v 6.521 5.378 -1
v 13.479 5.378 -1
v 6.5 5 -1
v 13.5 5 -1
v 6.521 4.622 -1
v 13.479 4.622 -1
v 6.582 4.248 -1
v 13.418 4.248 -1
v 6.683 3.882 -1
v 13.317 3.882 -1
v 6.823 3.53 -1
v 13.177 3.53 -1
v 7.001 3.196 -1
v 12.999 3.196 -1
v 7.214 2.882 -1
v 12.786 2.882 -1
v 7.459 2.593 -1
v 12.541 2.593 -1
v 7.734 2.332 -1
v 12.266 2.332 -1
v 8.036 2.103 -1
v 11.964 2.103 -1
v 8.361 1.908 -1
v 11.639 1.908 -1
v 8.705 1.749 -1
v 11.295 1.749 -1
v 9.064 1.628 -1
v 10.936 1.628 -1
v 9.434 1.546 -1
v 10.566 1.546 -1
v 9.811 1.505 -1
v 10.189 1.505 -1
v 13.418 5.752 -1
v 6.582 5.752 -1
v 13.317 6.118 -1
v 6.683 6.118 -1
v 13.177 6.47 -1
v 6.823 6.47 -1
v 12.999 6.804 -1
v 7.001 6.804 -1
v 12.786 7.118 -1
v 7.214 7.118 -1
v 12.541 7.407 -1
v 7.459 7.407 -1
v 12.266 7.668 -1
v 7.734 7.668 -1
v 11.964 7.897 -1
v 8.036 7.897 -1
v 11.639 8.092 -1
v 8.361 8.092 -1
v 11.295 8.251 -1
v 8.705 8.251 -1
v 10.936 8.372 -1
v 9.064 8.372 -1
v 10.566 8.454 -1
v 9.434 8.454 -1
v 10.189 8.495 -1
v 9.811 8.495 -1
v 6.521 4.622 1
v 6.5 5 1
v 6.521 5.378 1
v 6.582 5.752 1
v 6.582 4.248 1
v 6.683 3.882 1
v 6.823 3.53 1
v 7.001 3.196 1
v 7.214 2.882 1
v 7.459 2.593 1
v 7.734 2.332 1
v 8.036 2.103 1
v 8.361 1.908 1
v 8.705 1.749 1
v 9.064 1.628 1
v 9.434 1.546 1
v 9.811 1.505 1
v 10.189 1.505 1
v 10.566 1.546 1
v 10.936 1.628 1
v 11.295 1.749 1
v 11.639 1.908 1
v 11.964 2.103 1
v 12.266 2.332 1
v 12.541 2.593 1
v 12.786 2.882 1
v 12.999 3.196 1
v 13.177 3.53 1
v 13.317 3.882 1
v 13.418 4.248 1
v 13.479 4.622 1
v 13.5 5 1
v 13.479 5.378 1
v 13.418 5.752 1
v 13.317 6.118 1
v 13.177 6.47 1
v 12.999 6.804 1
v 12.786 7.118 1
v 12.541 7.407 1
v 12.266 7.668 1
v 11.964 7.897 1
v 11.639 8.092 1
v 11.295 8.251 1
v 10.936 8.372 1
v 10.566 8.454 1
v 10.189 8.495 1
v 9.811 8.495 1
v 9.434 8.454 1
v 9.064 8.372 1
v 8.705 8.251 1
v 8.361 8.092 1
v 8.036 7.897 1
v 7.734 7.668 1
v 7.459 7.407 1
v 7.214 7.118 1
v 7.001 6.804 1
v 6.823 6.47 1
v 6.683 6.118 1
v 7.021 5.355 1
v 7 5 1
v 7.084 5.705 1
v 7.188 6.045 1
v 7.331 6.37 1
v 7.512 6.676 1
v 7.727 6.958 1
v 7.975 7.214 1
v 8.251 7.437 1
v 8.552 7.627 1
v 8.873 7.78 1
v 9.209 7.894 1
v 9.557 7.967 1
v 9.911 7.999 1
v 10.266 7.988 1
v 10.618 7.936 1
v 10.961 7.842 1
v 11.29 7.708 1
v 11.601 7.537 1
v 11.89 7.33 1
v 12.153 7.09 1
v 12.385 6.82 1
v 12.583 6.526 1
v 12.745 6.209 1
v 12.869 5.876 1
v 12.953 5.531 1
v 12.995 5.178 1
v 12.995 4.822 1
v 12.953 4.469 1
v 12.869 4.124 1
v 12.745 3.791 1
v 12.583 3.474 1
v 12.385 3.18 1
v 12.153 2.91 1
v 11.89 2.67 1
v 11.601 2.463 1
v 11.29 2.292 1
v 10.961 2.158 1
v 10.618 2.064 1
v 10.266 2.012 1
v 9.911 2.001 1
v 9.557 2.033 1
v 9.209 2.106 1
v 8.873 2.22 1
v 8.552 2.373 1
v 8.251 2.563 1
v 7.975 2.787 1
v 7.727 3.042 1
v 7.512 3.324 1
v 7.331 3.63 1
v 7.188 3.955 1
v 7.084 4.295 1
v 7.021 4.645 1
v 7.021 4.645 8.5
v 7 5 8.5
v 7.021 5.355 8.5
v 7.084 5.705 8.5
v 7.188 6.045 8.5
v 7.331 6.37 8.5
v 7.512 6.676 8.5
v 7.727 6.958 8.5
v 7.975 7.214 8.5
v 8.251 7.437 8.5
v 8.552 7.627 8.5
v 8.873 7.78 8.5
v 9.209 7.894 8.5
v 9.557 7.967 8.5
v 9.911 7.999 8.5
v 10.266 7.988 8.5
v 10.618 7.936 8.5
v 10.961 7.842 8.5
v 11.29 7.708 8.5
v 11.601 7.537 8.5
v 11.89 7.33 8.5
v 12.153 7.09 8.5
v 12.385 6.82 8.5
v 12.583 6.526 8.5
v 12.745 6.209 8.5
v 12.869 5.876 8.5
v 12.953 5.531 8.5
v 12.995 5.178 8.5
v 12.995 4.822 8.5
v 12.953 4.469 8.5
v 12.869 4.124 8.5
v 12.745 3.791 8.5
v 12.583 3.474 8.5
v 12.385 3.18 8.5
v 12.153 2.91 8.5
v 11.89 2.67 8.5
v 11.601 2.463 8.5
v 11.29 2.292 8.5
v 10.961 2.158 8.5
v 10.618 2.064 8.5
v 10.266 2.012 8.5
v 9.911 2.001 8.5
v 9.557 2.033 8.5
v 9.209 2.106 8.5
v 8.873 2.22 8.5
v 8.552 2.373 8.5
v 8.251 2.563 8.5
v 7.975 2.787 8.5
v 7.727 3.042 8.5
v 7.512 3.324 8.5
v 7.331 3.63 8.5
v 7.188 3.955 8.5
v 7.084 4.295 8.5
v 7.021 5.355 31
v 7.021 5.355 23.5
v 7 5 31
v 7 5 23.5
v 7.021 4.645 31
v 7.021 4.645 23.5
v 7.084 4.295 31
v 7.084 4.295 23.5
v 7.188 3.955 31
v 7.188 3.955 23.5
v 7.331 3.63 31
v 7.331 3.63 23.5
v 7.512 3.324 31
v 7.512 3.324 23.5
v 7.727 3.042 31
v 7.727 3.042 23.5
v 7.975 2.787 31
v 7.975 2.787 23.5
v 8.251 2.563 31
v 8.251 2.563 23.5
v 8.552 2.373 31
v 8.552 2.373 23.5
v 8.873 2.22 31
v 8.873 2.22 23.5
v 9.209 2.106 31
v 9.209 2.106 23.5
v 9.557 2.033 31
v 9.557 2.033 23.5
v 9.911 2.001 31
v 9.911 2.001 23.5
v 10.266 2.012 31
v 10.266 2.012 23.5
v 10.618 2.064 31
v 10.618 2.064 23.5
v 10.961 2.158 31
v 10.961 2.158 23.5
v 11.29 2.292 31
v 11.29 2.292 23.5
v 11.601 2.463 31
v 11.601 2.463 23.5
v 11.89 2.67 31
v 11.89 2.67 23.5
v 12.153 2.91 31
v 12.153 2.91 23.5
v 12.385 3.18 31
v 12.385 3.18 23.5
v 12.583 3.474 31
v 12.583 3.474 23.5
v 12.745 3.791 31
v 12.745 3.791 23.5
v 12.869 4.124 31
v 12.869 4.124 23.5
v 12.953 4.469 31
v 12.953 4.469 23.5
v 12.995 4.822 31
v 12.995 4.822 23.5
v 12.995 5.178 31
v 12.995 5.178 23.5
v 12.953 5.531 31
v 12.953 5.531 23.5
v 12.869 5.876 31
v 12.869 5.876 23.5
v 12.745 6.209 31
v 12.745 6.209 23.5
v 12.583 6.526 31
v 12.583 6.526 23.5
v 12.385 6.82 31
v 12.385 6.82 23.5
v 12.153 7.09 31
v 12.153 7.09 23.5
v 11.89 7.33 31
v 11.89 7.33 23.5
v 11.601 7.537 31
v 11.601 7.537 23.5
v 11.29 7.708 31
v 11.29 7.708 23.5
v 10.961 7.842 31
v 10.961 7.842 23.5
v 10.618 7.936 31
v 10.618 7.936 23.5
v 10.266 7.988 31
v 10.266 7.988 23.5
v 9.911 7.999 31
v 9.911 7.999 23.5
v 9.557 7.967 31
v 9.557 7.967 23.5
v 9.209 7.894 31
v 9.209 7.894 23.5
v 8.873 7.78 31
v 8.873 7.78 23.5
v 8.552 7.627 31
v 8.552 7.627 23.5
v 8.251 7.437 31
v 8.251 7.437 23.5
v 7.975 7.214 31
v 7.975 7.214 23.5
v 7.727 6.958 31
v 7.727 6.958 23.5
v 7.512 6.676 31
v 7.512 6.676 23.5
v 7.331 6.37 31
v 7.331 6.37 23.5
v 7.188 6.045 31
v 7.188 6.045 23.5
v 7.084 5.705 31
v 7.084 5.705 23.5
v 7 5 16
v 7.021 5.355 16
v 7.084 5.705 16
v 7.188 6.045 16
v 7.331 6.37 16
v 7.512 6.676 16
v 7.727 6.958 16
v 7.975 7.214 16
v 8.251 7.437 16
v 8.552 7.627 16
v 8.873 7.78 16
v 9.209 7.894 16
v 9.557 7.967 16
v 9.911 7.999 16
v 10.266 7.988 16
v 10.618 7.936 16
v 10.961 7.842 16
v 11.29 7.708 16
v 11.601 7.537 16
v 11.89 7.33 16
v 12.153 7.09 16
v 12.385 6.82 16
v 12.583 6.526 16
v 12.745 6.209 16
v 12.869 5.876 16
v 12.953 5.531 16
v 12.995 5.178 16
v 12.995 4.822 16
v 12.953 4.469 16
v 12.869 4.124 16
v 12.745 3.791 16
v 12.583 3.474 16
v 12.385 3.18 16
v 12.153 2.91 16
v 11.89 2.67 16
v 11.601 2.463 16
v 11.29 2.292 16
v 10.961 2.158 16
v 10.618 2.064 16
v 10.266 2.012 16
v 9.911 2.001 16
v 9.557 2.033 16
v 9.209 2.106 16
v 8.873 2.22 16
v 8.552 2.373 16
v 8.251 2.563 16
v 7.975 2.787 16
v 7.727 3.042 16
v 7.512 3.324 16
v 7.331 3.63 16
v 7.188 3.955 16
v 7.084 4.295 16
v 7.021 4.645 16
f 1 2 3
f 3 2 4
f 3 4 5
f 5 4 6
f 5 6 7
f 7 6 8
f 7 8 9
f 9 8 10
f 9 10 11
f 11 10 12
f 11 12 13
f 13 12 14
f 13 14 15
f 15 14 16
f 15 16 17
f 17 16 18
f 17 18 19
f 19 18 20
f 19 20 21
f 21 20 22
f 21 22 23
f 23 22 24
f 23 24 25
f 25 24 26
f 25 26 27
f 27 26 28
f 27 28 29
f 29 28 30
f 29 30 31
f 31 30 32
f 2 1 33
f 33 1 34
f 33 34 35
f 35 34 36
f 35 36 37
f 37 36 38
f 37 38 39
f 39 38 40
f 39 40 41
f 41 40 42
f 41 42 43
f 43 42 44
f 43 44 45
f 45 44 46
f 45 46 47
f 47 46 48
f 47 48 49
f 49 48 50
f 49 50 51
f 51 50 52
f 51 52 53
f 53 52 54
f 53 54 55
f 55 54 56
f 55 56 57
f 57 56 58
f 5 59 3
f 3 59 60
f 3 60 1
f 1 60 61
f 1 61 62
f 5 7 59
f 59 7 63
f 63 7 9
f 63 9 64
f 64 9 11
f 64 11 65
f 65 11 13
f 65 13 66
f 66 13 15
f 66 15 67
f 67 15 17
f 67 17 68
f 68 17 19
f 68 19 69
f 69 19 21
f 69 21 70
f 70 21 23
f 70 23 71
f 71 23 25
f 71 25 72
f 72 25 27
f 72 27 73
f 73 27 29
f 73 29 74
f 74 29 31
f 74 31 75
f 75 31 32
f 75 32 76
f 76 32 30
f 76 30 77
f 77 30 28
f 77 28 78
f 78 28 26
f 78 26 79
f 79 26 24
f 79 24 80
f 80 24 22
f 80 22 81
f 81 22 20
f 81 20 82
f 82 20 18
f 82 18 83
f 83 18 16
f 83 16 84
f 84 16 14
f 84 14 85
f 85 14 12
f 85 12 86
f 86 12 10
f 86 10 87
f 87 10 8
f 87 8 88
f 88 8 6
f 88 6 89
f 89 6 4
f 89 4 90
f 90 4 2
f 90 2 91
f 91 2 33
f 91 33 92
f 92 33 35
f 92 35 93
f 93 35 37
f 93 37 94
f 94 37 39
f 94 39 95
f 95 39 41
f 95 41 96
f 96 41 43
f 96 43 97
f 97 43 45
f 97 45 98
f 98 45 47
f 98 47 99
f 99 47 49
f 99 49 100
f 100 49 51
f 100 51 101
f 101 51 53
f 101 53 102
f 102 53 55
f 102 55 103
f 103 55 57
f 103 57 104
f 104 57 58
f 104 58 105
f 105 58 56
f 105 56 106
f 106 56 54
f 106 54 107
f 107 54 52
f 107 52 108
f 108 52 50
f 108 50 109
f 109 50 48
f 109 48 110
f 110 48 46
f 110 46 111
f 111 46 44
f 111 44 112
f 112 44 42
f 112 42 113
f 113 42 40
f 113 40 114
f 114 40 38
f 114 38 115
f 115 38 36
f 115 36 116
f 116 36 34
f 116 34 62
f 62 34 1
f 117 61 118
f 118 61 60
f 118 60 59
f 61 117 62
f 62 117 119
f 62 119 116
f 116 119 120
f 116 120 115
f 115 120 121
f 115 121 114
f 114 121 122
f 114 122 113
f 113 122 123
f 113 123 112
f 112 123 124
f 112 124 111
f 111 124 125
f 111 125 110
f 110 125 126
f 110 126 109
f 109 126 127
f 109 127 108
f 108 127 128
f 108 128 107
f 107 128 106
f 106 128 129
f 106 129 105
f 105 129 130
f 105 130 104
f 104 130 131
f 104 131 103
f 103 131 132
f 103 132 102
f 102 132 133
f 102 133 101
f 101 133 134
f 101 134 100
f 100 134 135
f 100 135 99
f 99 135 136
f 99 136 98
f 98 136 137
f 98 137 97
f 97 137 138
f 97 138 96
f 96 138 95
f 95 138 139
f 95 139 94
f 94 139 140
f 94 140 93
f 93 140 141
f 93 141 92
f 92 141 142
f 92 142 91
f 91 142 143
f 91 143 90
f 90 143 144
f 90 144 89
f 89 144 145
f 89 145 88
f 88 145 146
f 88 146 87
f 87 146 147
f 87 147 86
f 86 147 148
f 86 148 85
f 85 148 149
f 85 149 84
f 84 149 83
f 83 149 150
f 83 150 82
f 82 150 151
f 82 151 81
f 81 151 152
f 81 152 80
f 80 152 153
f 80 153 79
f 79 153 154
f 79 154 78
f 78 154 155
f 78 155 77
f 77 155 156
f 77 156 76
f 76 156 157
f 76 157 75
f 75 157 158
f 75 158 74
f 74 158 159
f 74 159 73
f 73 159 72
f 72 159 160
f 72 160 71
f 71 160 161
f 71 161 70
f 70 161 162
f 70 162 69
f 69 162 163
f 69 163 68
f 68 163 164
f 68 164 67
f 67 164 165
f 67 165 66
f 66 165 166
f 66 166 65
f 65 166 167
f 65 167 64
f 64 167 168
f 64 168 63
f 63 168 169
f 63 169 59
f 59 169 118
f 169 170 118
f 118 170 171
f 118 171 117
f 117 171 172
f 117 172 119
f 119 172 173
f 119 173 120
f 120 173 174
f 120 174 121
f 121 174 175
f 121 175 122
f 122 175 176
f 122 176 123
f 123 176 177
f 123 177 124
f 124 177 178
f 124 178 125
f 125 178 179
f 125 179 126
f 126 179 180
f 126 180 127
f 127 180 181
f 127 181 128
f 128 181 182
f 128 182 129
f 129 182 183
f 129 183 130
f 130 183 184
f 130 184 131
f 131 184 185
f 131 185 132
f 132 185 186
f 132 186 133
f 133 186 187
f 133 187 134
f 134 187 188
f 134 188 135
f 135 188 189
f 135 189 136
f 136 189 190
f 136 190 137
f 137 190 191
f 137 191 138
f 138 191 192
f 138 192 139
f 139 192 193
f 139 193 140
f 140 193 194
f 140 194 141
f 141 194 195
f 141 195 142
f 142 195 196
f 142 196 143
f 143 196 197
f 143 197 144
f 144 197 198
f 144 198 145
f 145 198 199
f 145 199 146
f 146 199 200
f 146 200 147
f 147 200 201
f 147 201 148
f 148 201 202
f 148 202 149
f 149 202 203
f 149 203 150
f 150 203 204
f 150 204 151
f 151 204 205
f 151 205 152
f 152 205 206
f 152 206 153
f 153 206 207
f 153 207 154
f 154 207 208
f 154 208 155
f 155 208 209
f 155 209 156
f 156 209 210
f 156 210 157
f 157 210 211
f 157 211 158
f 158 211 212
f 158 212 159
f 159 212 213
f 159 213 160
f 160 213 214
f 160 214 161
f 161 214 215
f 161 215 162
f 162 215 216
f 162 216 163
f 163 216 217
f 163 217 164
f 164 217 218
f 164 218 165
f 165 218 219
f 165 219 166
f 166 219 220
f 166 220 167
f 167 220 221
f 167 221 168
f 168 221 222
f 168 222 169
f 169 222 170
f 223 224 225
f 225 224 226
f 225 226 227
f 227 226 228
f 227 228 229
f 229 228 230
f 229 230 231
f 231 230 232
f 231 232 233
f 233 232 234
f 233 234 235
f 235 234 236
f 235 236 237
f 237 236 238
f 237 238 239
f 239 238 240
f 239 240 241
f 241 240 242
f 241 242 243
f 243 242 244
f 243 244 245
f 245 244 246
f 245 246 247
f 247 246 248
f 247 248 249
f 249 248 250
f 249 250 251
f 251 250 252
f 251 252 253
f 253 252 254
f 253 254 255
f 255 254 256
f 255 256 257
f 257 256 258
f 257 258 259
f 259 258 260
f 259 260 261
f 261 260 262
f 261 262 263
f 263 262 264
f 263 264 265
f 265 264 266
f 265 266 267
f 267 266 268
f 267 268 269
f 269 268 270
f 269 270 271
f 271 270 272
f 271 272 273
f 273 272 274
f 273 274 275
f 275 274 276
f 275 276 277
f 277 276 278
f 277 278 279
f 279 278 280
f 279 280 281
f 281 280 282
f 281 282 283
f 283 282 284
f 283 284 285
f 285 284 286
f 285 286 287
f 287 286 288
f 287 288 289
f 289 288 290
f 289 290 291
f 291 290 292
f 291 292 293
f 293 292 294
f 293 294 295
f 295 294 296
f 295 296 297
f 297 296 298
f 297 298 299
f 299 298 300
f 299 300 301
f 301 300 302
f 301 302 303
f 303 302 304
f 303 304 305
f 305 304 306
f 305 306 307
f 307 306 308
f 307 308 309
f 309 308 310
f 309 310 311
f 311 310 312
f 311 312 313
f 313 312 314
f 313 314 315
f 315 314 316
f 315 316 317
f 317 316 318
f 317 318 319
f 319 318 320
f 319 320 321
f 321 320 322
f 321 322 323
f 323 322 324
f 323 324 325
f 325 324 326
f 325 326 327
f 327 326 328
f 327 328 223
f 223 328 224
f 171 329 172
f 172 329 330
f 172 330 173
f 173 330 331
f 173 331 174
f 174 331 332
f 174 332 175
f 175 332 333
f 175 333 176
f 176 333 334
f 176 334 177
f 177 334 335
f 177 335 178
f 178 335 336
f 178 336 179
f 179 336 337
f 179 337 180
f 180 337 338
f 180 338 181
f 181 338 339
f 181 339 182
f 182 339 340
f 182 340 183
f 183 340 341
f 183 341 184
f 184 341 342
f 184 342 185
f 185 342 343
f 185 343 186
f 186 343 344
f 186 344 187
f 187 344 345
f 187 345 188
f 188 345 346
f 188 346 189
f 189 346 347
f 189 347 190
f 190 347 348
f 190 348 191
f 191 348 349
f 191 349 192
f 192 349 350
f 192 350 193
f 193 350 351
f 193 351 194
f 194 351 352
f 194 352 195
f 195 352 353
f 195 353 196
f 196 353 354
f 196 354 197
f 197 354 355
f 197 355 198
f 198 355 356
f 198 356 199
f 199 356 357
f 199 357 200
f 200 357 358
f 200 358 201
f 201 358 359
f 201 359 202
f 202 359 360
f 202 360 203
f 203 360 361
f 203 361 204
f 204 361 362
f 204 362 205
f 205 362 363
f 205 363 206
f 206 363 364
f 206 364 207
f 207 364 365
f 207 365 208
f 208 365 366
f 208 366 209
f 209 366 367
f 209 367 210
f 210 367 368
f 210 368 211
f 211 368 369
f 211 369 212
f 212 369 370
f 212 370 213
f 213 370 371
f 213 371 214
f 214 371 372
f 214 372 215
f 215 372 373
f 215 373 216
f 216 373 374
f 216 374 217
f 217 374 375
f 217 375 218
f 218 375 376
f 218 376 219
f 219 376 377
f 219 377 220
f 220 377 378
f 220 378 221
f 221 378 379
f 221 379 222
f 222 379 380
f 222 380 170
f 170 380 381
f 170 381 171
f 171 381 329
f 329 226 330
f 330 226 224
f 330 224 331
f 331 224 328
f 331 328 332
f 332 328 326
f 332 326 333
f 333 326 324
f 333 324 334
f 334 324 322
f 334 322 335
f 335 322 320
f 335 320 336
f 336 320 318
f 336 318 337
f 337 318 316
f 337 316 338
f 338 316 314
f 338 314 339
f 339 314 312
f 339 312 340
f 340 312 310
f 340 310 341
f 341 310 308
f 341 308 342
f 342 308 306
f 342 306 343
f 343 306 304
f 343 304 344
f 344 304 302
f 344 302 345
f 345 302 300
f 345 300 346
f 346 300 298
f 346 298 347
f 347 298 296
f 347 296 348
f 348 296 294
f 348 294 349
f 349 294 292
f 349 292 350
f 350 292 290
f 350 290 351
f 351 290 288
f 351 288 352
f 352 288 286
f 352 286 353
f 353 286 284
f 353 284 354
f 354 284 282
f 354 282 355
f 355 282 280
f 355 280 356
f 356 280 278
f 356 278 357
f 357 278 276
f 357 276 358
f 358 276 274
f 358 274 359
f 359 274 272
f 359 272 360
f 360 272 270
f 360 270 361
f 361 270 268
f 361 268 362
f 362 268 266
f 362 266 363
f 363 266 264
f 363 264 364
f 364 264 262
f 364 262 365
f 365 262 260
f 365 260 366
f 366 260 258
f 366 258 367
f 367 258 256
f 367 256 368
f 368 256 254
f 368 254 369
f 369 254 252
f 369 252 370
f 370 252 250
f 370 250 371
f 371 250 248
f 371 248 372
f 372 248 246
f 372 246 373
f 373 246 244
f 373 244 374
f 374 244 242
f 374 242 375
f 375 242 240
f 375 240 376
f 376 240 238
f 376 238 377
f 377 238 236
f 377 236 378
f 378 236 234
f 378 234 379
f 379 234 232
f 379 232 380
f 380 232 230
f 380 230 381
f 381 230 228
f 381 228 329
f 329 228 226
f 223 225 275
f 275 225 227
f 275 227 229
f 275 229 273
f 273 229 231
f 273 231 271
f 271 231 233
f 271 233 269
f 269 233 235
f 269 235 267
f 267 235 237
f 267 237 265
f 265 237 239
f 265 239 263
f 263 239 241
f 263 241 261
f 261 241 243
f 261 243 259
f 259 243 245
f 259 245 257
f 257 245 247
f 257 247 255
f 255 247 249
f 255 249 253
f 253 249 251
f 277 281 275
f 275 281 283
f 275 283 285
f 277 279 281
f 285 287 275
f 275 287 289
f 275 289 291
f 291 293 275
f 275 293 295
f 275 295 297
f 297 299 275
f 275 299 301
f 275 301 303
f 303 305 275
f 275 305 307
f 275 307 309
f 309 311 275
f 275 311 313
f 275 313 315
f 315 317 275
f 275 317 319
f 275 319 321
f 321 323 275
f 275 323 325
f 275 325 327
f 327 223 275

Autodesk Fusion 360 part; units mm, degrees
sketch "Esboço1" plane through (0, 0, 0) normal (0, 0, 1) x (1, 0, 0)
  circle A0 centre (10, 5) radius 3
  circle A1 centre (10, 5) radius 3.5
  dimension "d1" = 6
  dimension "d2" = 7
extrude "Extrusão1" add sketch "Esboço1" along normal blind 31 contours A0
extrude "Extrusão2" add sketch "Esboço1" along normal blind 1
extrude "Extrusão3" add sketch "Esboço1" against normal blind 1 contours A0 | A1
